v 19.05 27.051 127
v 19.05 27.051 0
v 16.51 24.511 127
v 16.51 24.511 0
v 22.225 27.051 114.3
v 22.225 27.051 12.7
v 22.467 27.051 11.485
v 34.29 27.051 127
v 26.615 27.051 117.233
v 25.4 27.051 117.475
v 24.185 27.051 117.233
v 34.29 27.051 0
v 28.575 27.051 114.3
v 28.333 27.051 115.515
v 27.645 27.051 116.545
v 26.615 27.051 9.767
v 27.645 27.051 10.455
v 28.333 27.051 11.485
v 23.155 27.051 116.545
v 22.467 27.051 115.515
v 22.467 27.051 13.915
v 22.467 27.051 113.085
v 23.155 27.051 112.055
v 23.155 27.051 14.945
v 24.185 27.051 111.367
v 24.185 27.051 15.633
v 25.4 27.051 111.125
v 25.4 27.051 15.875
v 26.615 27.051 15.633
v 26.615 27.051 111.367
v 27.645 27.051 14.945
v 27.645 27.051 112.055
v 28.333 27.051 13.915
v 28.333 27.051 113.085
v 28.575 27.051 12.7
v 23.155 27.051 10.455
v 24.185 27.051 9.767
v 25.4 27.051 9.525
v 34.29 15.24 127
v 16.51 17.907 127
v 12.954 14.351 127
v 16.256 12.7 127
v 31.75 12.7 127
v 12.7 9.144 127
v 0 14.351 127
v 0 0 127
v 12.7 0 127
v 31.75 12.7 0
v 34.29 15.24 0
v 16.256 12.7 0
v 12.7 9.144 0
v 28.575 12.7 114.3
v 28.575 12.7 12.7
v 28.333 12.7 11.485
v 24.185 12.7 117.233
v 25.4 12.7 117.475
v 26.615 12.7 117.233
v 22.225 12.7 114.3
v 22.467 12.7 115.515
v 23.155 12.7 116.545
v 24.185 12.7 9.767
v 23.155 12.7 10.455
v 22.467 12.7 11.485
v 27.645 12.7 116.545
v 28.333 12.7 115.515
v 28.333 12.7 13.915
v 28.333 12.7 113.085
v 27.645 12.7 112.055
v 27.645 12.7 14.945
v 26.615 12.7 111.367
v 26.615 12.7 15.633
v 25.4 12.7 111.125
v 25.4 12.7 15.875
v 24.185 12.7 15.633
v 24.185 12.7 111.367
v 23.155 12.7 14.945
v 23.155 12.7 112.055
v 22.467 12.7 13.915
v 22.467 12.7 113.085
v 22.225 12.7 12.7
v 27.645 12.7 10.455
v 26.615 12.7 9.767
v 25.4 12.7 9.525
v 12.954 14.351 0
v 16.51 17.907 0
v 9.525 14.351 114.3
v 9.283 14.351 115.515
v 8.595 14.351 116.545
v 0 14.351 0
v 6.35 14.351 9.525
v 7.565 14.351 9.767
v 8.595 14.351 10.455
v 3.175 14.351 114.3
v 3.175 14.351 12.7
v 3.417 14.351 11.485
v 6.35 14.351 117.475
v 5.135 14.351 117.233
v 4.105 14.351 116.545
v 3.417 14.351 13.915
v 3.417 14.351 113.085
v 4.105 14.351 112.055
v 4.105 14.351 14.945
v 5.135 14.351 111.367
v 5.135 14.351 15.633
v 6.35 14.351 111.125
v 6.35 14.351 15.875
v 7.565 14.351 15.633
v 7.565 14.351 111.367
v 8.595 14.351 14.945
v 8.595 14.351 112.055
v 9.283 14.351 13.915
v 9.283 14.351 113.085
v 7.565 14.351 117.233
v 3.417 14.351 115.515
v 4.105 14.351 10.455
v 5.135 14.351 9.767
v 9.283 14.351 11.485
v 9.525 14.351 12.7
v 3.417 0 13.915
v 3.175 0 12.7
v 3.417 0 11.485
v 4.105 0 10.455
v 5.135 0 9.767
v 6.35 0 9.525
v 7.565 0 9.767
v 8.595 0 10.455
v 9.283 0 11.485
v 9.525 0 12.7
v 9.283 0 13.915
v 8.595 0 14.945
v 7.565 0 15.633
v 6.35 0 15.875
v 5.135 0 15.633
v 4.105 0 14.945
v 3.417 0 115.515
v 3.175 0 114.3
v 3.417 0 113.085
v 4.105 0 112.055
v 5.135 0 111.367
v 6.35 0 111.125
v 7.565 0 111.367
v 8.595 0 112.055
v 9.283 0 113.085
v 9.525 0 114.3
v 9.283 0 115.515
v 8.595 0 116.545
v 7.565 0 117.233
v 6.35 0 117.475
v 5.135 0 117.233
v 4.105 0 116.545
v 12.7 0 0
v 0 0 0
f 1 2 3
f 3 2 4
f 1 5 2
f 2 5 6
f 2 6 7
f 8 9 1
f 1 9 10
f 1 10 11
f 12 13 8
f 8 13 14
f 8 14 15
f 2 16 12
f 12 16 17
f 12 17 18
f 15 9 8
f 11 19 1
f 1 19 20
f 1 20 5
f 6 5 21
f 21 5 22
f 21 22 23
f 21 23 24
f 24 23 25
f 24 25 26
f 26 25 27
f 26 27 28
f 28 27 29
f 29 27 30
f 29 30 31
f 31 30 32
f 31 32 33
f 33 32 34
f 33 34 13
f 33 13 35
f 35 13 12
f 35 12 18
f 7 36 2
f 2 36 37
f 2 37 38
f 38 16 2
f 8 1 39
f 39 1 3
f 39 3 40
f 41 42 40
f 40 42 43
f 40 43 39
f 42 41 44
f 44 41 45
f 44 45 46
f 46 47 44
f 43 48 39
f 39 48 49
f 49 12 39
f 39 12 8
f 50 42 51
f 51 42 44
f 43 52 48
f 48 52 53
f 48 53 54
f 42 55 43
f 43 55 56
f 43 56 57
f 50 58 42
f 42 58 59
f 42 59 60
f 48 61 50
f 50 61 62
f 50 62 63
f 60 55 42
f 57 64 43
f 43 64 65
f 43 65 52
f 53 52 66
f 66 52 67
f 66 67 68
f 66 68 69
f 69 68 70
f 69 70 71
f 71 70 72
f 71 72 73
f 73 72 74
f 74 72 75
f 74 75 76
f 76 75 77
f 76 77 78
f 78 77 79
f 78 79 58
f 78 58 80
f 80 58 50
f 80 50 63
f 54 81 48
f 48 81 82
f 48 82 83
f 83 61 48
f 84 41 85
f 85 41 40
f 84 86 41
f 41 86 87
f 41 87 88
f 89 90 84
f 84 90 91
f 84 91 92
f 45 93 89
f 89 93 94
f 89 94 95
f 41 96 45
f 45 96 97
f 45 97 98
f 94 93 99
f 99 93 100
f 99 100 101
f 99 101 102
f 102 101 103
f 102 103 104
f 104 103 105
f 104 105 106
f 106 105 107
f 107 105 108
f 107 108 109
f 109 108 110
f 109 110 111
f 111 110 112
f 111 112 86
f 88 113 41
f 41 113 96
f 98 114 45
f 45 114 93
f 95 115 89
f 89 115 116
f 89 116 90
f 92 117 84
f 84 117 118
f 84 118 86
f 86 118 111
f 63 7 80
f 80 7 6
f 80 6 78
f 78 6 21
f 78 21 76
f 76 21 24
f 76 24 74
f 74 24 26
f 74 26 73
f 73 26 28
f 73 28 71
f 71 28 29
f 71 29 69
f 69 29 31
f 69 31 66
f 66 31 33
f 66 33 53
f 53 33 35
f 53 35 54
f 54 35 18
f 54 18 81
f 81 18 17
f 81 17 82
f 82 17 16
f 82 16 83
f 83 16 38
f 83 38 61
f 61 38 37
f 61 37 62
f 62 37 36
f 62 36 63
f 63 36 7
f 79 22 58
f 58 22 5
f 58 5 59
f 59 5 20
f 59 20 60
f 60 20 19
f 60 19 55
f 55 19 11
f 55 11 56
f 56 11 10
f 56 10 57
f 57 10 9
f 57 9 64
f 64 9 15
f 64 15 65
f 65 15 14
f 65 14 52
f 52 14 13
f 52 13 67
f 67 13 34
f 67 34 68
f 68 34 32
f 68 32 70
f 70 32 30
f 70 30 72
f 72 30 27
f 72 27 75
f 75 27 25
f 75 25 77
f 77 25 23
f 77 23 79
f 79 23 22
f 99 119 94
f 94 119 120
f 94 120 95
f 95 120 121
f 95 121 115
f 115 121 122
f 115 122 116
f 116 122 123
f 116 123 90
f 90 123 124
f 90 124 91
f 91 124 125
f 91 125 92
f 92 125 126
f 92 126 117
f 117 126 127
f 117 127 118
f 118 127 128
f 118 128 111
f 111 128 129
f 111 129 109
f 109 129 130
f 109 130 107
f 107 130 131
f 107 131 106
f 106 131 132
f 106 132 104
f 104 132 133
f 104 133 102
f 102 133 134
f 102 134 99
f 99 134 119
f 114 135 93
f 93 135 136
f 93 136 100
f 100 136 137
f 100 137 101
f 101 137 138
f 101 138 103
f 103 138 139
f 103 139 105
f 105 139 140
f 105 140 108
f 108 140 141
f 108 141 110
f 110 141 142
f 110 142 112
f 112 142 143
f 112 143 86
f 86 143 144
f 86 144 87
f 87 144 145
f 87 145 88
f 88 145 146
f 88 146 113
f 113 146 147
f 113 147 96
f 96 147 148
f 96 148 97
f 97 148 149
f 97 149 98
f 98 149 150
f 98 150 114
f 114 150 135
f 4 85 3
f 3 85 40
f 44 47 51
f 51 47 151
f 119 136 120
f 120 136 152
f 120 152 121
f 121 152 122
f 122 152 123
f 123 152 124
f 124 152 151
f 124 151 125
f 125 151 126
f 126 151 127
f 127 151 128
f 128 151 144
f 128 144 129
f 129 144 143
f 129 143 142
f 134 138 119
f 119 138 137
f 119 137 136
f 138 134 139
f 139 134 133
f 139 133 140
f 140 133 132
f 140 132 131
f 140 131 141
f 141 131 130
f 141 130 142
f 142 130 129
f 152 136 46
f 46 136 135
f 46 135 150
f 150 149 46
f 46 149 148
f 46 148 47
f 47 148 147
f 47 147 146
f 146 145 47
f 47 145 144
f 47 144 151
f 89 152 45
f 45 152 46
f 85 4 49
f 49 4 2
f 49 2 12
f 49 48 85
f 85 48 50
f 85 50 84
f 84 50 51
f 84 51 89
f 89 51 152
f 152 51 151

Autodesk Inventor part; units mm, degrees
ref_plane "YZ Plane" through (0, 0, 0) normal (1, 0, 0) x (0, 1, 0)
ref_plane "XZ Plane" through (0, 0, 0) normal (0, 1, 0) x (-1, 0, 0)
ref_plane "XY Plane" through (0, 0, 0) normal (0, 0, 1) x (1, 0, 0)
sketch "Sketch1" plane through (0, 0, 0) normal (0, 0, 1) x (1, 0, 0)
  line L0 (0, 0) -> (0, 14.351)
  line L1 (0, 0) -> (14.351, 0) construction
  line L2 (0, 14.351) -> (16.51, 14.351)
  line L3 (16.51, 14.351) -> (16.51, 27.051)
  line L4 (16.51, 27.051) -> (34.29, 27.051)
  line L5 (34.29, 27.051) -> (34.29, 12.7)
  line L6 (34.29, 12.7) -> (12.7, 12.7)
  line L7 (12.7, 12.7) -> (12.7, 0)
  line L8 (0, 0) -> (12.7, 0)
  dimension "d0" = 14.351
  dimension "d2" = 16.51
  dimension "d6" = 17.78
  dimension "d9" = 21.59
  dimension "d47" = 14.351
  dimension "d49" = 12.7
extrude "Extrusion1" add sketch "Sketch1" along normal blind 127
sketch "Sketch3" plane through (16.51, 27.051, 0) normal (0, 1, 0) x (1, 0, 0)
  line L0 (0, -127) -> (-16.51, -127) projected
  line L1 (-16.51, 0) -> (0, 0) projected
  line L2 (-16.51, 0) -> (-16.51, -127) projected
  point P0 (-10.16, -12.7)
  point P1 (-10.16, -114.3)
  dimension "d25" = 12.7
  dimension "d26" = 12.7
  dimension "d27" = 6.35
  dimension "d28" = 6.35
hole "Hole2" at (6.35, 27.051, 12.7) at (6.35, 27.051, 114.3) direction (0, -1, 0) diameter 6.35 end through all
sketch "Sketch4" plane through (16.51, 27.051, 0) normal (0, 1, 0) x (1, 0, 0)
  line L0 (17.78, 0) -> (17.78, -127) projected
  line L1 (17.78, -127) -> (0, -127) projected
  line L2 (0, 0) -> (17.78, 0) projected
  line L3 (0, 0) -> (0, -127) projected
  point P0 (-16.51, 0)
  point P1 (8.89, -12.7)
  point P2 (8.89, -114.3)
  dimension "d36" = 8.89
  dimension "d37" = 12.7
  dimension "d38" = 12.7
  dimension "d48" = 17.78
hole "Hole3" at (25.4, 27.051, 12.7) at (25.4, 27.051, 114.3) direction (0, -1, 0) diameter 6.35 end through all
chamfer "Chamfer1" distance 3.556 angle 45 2 edges at (16.51, 14.351, 63.5) (12.7, 12.7, 63.5)
chamfer "Chamfer2" distance 2.54 angle 45 2 edges at (34.29, 12.7, 63.5) (16.51, 27.051, 63.5)
equation "\"d0\" = d47"
equation "\"d26\" = d25"
equation "\"d28\" = d27"
equation "\"d36\" = 0.5 * d48"
equation "\"d38\" = d37"
properties part number "Block_3-8" material "Aluminum 6061"
